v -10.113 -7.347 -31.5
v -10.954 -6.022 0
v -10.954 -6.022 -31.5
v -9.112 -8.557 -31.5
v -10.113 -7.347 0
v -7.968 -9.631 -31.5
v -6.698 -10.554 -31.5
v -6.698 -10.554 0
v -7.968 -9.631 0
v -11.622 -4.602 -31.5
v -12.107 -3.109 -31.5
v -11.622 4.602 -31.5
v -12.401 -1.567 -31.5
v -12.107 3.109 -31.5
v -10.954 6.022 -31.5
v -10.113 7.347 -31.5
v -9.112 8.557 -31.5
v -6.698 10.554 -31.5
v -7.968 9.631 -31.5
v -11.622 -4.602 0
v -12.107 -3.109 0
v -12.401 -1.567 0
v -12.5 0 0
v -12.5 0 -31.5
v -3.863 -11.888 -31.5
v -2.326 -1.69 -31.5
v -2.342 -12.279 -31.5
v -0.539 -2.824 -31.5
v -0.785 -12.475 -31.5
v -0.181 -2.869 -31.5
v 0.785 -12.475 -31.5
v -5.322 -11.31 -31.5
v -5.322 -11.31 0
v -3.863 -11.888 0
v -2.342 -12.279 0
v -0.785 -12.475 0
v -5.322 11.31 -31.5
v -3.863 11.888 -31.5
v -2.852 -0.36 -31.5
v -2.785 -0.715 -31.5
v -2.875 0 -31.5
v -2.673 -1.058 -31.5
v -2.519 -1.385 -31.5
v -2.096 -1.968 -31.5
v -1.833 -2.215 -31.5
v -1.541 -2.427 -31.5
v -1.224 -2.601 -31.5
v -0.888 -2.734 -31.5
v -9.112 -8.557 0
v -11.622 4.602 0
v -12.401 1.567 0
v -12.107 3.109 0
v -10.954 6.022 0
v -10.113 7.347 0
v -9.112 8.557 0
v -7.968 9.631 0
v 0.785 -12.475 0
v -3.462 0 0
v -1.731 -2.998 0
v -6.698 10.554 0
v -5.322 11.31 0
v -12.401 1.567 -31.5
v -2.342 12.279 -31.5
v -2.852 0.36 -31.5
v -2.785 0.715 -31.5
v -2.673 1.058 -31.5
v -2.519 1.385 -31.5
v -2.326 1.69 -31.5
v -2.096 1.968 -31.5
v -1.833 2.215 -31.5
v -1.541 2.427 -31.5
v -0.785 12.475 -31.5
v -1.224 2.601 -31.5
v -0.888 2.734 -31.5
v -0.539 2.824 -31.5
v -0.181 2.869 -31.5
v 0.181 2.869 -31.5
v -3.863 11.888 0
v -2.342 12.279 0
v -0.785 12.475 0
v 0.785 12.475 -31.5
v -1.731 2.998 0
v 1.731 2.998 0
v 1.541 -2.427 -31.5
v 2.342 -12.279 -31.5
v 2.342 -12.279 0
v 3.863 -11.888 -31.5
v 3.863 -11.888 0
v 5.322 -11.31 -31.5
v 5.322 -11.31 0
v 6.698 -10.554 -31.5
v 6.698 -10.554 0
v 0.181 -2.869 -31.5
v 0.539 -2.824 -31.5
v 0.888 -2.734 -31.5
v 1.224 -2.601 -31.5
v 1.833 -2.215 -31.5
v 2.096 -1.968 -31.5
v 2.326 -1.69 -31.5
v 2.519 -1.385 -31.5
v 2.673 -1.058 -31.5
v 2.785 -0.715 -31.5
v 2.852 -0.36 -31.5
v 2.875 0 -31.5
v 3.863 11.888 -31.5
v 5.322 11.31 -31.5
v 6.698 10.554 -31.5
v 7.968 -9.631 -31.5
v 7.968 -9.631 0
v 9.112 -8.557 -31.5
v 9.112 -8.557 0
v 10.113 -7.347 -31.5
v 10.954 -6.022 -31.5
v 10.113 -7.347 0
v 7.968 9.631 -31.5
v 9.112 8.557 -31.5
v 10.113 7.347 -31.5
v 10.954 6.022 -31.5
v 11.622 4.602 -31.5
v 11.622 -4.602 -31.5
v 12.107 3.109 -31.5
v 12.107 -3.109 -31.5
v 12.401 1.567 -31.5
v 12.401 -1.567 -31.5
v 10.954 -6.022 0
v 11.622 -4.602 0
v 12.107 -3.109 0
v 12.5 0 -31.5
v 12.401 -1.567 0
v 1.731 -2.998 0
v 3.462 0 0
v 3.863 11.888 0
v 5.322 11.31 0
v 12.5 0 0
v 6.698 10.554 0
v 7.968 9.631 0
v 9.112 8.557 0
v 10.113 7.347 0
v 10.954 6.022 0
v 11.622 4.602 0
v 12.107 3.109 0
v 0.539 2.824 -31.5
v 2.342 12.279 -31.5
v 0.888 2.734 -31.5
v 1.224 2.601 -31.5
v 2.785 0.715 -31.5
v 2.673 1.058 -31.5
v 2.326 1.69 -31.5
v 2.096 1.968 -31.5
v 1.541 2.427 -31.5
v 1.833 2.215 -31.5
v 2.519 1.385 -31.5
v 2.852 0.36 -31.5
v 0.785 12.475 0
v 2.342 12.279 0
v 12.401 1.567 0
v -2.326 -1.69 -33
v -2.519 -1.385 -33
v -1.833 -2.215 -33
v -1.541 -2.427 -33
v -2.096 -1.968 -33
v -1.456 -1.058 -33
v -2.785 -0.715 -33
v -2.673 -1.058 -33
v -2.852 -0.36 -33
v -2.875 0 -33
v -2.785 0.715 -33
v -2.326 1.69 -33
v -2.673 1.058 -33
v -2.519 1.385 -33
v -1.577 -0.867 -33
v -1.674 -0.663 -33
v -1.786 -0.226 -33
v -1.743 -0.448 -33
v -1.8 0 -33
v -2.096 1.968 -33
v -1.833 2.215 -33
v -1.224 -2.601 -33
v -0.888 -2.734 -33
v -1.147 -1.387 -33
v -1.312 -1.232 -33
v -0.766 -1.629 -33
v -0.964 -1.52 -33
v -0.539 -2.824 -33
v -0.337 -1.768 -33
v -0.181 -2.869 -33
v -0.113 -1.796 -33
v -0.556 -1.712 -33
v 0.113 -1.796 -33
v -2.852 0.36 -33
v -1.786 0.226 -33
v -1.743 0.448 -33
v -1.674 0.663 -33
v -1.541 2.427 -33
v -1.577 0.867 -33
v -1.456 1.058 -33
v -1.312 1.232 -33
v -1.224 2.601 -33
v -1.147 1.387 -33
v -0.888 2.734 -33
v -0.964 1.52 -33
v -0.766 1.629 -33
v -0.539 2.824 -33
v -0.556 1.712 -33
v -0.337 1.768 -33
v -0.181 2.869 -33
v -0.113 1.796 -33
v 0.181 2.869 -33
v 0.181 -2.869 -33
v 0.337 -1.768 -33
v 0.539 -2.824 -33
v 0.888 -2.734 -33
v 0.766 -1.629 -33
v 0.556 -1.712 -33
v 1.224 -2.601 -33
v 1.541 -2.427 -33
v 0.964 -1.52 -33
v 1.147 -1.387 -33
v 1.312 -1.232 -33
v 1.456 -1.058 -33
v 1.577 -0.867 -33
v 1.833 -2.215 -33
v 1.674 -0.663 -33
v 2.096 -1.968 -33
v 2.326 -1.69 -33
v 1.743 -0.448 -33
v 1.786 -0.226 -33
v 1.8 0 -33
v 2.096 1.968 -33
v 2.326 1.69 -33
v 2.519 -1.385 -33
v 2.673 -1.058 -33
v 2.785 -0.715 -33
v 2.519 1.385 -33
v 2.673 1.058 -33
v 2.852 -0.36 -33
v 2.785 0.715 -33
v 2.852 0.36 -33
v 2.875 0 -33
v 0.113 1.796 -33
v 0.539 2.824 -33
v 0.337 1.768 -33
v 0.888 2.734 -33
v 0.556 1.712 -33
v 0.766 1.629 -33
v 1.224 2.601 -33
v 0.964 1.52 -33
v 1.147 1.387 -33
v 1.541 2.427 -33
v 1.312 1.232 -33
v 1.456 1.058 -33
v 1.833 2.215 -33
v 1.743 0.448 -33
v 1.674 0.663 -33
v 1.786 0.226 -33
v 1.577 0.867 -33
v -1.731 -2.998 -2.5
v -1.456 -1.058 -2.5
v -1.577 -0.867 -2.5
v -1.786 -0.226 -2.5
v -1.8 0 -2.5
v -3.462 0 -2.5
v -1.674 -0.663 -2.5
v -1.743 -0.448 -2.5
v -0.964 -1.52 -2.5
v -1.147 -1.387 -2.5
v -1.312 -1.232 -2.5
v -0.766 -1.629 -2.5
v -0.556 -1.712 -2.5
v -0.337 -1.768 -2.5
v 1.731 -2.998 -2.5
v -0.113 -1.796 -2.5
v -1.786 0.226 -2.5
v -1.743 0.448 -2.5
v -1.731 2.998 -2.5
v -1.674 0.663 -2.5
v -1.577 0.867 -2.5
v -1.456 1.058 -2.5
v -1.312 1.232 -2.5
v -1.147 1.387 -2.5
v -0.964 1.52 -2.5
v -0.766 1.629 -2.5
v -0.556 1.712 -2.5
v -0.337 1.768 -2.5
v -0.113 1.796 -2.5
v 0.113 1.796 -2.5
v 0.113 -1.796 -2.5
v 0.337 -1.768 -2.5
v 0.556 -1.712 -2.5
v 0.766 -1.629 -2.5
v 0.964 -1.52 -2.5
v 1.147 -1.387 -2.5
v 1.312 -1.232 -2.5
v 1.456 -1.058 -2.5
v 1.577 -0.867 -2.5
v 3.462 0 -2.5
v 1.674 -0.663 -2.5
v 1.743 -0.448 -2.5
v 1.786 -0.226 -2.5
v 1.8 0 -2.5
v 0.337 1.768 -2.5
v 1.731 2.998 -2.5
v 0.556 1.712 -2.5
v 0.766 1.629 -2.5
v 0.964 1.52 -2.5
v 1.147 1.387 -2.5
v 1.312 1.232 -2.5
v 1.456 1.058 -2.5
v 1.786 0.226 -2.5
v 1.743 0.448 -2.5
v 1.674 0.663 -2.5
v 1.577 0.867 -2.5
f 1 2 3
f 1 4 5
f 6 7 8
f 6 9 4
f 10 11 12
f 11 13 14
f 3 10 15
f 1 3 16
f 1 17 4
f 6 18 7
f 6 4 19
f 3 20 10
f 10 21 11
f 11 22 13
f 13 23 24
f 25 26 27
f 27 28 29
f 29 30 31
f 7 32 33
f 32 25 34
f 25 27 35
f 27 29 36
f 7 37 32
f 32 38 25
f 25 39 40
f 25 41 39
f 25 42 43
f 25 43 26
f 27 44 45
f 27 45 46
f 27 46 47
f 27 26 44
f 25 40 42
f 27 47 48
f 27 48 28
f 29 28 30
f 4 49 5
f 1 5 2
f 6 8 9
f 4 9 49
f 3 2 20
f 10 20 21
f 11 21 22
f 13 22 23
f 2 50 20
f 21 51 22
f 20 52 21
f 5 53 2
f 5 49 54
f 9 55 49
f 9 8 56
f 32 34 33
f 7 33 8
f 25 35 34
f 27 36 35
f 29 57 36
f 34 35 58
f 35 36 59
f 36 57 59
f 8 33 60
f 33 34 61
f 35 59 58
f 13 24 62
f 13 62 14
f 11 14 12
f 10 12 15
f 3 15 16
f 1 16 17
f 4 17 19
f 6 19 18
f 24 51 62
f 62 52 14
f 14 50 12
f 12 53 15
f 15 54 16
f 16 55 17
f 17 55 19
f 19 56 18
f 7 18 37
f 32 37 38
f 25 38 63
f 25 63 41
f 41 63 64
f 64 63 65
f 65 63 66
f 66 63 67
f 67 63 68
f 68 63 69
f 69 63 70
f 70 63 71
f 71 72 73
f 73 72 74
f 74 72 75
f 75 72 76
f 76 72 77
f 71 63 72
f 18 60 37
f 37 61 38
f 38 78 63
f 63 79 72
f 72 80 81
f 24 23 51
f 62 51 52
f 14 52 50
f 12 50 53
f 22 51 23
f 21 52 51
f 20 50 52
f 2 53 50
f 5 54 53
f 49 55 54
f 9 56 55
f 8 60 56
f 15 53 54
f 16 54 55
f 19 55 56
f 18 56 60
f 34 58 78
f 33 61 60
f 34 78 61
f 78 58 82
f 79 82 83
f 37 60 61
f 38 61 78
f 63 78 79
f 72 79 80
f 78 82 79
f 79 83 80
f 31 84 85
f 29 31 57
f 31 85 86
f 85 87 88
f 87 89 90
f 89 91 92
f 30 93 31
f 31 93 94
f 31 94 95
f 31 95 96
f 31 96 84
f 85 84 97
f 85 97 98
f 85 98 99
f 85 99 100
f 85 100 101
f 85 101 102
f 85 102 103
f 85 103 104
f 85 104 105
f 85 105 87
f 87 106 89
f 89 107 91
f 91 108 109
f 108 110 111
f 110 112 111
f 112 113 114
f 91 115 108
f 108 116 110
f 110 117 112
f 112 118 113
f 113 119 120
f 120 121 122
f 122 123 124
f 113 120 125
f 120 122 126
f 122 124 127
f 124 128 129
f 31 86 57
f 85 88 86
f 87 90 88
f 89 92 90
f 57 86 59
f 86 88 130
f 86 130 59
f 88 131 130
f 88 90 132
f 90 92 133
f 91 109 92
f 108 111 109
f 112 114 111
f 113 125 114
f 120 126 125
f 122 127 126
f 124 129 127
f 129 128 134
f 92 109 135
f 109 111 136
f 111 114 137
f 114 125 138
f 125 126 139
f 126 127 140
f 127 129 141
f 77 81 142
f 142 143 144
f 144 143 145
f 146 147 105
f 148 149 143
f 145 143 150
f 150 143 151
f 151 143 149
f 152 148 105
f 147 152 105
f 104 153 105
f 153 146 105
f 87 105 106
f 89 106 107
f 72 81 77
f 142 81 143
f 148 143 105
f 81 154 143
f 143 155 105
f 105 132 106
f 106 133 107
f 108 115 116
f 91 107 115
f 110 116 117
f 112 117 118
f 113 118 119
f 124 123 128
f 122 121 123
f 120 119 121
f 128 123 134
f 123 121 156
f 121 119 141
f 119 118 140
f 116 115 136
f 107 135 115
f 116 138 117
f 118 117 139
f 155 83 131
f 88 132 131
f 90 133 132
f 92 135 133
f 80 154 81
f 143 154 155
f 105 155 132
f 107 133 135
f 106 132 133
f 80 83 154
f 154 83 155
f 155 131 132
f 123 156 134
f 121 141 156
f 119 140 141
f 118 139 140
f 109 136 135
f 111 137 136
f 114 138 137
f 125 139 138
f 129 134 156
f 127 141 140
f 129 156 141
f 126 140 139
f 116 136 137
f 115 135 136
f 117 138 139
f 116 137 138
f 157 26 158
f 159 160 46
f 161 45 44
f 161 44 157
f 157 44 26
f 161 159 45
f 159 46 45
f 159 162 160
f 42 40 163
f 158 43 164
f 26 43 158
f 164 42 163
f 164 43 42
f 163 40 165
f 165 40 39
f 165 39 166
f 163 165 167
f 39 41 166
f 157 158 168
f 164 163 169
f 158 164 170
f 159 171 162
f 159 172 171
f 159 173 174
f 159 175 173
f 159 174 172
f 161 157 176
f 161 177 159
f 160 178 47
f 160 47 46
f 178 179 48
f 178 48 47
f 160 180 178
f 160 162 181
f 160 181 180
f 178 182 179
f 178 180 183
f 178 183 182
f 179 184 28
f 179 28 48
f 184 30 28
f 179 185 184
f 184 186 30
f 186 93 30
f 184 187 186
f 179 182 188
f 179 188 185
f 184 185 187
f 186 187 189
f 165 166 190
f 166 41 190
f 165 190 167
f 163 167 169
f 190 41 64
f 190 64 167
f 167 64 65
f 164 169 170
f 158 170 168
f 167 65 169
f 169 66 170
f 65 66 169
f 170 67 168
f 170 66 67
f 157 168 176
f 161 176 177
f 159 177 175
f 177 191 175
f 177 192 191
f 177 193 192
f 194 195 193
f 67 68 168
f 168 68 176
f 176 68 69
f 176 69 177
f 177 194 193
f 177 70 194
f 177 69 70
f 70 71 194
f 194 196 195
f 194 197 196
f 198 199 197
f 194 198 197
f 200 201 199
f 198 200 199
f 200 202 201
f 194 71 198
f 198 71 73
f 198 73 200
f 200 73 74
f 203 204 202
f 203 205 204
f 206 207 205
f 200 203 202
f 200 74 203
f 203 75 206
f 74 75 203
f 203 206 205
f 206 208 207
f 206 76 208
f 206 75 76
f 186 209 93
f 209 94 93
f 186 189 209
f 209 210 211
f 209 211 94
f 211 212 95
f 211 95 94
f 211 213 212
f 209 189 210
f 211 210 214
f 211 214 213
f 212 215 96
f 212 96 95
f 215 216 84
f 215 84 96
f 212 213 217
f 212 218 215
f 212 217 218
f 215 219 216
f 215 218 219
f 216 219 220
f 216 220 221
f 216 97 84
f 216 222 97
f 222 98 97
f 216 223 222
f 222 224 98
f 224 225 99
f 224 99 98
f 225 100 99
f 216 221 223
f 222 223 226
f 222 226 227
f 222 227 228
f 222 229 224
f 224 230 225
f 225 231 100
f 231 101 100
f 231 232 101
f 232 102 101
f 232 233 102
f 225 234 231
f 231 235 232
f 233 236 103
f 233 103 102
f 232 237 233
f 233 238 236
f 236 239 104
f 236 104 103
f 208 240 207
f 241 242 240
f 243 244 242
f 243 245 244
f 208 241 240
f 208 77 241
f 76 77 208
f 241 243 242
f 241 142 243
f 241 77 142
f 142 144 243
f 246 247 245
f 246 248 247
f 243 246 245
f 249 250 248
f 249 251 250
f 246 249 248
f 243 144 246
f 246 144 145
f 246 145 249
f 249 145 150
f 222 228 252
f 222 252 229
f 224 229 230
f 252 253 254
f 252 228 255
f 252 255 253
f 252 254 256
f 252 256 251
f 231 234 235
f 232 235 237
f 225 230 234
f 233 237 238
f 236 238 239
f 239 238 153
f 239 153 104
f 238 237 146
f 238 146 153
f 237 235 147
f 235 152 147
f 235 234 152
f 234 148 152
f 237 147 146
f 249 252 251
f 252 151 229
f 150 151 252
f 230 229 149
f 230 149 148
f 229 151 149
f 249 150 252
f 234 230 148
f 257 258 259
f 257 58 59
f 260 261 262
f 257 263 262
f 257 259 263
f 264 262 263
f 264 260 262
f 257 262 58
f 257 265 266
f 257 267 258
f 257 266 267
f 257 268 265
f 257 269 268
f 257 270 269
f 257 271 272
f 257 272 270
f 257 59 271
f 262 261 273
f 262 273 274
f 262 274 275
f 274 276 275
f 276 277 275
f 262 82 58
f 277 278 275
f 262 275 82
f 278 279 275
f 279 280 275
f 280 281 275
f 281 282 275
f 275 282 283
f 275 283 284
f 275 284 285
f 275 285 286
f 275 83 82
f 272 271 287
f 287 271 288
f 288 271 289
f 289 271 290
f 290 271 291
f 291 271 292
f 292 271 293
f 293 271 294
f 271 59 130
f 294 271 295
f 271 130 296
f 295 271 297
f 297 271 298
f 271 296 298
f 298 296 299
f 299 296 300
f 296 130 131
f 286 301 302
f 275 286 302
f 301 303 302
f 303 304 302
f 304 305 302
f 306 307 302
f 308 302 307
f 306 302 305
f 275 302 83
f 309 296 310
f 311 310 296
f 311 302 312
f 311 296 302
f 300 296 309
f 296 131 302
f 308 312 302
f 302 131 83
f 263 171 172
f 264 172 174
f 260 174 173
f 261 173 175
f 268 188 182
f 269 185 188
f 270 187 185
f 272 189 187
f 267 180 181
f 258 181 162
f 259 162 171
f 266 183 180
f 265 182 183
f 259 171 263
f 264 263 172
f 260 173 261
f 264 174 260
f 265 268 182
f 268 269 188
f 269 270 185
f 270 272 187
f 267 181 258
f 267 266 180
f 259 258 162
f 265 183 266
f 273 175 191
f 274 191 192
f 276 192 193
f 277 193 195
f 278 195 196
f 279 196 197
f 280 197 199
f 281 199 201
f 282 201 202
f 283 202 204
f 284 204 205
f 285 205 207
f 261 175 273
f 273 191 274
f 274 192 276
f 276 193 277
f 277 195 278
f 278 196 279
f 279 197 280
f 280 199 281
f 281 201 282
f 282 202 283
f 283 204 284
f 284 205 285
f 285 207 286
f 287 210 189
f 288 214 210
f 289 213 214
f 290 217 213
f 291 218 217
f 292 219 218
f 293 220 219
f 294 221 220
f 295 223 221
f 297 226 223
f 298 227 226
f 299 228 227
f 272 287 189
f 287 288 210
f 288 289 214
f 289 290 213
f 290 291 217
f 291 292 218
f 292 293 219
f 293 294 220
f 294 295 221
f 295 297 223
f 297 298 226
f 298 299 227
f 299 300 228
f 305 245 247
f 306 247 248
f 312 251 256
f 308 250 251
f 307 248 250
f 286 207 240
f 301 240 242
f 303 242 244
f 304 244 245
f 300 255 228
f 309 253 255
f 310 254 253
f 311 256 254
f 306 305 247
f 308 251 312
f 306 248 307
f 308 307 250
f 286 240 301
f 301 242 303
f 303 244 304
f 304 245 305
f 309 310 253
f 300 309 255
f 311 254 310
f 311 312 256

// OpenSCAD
$fn = 50;

difference() {
	union() {
		translate(v = [0, 0, -31.5]) {
			cylinder(h = 31.5, r = 12.5);
		}
		#translate(v = [0, 0, -33.0]) {
			cylinder(h = 33, r = 2.875);
		}
	}
	union() {
		translate(v = [0, 0, 0]) {
			rotate(a = [0, 0, 0]) {
				difference() {
					union() {
						translate(v = [0, 0, -2.5]) {
							linear_extrude(height = 2.5) {
								polygon(points = [[3.4619999999999997, 0.0], [1.7310000000000003, 2.9981799479017264], [-1.7309999999999992, 2.9981799479017264], [-3.4619999999999997, 4.2397272186481365e-16], [-1.7310000000000014, -2.998179947901726], [1.7309999999999977, -2.9981799479017277]]);
							}
						}
					}
					union();
				}
			}
		}
		#translate(v = [0, 0, -100.0]) {
			cylinder(h = 200, r = 1.8);
		}
	}
}
